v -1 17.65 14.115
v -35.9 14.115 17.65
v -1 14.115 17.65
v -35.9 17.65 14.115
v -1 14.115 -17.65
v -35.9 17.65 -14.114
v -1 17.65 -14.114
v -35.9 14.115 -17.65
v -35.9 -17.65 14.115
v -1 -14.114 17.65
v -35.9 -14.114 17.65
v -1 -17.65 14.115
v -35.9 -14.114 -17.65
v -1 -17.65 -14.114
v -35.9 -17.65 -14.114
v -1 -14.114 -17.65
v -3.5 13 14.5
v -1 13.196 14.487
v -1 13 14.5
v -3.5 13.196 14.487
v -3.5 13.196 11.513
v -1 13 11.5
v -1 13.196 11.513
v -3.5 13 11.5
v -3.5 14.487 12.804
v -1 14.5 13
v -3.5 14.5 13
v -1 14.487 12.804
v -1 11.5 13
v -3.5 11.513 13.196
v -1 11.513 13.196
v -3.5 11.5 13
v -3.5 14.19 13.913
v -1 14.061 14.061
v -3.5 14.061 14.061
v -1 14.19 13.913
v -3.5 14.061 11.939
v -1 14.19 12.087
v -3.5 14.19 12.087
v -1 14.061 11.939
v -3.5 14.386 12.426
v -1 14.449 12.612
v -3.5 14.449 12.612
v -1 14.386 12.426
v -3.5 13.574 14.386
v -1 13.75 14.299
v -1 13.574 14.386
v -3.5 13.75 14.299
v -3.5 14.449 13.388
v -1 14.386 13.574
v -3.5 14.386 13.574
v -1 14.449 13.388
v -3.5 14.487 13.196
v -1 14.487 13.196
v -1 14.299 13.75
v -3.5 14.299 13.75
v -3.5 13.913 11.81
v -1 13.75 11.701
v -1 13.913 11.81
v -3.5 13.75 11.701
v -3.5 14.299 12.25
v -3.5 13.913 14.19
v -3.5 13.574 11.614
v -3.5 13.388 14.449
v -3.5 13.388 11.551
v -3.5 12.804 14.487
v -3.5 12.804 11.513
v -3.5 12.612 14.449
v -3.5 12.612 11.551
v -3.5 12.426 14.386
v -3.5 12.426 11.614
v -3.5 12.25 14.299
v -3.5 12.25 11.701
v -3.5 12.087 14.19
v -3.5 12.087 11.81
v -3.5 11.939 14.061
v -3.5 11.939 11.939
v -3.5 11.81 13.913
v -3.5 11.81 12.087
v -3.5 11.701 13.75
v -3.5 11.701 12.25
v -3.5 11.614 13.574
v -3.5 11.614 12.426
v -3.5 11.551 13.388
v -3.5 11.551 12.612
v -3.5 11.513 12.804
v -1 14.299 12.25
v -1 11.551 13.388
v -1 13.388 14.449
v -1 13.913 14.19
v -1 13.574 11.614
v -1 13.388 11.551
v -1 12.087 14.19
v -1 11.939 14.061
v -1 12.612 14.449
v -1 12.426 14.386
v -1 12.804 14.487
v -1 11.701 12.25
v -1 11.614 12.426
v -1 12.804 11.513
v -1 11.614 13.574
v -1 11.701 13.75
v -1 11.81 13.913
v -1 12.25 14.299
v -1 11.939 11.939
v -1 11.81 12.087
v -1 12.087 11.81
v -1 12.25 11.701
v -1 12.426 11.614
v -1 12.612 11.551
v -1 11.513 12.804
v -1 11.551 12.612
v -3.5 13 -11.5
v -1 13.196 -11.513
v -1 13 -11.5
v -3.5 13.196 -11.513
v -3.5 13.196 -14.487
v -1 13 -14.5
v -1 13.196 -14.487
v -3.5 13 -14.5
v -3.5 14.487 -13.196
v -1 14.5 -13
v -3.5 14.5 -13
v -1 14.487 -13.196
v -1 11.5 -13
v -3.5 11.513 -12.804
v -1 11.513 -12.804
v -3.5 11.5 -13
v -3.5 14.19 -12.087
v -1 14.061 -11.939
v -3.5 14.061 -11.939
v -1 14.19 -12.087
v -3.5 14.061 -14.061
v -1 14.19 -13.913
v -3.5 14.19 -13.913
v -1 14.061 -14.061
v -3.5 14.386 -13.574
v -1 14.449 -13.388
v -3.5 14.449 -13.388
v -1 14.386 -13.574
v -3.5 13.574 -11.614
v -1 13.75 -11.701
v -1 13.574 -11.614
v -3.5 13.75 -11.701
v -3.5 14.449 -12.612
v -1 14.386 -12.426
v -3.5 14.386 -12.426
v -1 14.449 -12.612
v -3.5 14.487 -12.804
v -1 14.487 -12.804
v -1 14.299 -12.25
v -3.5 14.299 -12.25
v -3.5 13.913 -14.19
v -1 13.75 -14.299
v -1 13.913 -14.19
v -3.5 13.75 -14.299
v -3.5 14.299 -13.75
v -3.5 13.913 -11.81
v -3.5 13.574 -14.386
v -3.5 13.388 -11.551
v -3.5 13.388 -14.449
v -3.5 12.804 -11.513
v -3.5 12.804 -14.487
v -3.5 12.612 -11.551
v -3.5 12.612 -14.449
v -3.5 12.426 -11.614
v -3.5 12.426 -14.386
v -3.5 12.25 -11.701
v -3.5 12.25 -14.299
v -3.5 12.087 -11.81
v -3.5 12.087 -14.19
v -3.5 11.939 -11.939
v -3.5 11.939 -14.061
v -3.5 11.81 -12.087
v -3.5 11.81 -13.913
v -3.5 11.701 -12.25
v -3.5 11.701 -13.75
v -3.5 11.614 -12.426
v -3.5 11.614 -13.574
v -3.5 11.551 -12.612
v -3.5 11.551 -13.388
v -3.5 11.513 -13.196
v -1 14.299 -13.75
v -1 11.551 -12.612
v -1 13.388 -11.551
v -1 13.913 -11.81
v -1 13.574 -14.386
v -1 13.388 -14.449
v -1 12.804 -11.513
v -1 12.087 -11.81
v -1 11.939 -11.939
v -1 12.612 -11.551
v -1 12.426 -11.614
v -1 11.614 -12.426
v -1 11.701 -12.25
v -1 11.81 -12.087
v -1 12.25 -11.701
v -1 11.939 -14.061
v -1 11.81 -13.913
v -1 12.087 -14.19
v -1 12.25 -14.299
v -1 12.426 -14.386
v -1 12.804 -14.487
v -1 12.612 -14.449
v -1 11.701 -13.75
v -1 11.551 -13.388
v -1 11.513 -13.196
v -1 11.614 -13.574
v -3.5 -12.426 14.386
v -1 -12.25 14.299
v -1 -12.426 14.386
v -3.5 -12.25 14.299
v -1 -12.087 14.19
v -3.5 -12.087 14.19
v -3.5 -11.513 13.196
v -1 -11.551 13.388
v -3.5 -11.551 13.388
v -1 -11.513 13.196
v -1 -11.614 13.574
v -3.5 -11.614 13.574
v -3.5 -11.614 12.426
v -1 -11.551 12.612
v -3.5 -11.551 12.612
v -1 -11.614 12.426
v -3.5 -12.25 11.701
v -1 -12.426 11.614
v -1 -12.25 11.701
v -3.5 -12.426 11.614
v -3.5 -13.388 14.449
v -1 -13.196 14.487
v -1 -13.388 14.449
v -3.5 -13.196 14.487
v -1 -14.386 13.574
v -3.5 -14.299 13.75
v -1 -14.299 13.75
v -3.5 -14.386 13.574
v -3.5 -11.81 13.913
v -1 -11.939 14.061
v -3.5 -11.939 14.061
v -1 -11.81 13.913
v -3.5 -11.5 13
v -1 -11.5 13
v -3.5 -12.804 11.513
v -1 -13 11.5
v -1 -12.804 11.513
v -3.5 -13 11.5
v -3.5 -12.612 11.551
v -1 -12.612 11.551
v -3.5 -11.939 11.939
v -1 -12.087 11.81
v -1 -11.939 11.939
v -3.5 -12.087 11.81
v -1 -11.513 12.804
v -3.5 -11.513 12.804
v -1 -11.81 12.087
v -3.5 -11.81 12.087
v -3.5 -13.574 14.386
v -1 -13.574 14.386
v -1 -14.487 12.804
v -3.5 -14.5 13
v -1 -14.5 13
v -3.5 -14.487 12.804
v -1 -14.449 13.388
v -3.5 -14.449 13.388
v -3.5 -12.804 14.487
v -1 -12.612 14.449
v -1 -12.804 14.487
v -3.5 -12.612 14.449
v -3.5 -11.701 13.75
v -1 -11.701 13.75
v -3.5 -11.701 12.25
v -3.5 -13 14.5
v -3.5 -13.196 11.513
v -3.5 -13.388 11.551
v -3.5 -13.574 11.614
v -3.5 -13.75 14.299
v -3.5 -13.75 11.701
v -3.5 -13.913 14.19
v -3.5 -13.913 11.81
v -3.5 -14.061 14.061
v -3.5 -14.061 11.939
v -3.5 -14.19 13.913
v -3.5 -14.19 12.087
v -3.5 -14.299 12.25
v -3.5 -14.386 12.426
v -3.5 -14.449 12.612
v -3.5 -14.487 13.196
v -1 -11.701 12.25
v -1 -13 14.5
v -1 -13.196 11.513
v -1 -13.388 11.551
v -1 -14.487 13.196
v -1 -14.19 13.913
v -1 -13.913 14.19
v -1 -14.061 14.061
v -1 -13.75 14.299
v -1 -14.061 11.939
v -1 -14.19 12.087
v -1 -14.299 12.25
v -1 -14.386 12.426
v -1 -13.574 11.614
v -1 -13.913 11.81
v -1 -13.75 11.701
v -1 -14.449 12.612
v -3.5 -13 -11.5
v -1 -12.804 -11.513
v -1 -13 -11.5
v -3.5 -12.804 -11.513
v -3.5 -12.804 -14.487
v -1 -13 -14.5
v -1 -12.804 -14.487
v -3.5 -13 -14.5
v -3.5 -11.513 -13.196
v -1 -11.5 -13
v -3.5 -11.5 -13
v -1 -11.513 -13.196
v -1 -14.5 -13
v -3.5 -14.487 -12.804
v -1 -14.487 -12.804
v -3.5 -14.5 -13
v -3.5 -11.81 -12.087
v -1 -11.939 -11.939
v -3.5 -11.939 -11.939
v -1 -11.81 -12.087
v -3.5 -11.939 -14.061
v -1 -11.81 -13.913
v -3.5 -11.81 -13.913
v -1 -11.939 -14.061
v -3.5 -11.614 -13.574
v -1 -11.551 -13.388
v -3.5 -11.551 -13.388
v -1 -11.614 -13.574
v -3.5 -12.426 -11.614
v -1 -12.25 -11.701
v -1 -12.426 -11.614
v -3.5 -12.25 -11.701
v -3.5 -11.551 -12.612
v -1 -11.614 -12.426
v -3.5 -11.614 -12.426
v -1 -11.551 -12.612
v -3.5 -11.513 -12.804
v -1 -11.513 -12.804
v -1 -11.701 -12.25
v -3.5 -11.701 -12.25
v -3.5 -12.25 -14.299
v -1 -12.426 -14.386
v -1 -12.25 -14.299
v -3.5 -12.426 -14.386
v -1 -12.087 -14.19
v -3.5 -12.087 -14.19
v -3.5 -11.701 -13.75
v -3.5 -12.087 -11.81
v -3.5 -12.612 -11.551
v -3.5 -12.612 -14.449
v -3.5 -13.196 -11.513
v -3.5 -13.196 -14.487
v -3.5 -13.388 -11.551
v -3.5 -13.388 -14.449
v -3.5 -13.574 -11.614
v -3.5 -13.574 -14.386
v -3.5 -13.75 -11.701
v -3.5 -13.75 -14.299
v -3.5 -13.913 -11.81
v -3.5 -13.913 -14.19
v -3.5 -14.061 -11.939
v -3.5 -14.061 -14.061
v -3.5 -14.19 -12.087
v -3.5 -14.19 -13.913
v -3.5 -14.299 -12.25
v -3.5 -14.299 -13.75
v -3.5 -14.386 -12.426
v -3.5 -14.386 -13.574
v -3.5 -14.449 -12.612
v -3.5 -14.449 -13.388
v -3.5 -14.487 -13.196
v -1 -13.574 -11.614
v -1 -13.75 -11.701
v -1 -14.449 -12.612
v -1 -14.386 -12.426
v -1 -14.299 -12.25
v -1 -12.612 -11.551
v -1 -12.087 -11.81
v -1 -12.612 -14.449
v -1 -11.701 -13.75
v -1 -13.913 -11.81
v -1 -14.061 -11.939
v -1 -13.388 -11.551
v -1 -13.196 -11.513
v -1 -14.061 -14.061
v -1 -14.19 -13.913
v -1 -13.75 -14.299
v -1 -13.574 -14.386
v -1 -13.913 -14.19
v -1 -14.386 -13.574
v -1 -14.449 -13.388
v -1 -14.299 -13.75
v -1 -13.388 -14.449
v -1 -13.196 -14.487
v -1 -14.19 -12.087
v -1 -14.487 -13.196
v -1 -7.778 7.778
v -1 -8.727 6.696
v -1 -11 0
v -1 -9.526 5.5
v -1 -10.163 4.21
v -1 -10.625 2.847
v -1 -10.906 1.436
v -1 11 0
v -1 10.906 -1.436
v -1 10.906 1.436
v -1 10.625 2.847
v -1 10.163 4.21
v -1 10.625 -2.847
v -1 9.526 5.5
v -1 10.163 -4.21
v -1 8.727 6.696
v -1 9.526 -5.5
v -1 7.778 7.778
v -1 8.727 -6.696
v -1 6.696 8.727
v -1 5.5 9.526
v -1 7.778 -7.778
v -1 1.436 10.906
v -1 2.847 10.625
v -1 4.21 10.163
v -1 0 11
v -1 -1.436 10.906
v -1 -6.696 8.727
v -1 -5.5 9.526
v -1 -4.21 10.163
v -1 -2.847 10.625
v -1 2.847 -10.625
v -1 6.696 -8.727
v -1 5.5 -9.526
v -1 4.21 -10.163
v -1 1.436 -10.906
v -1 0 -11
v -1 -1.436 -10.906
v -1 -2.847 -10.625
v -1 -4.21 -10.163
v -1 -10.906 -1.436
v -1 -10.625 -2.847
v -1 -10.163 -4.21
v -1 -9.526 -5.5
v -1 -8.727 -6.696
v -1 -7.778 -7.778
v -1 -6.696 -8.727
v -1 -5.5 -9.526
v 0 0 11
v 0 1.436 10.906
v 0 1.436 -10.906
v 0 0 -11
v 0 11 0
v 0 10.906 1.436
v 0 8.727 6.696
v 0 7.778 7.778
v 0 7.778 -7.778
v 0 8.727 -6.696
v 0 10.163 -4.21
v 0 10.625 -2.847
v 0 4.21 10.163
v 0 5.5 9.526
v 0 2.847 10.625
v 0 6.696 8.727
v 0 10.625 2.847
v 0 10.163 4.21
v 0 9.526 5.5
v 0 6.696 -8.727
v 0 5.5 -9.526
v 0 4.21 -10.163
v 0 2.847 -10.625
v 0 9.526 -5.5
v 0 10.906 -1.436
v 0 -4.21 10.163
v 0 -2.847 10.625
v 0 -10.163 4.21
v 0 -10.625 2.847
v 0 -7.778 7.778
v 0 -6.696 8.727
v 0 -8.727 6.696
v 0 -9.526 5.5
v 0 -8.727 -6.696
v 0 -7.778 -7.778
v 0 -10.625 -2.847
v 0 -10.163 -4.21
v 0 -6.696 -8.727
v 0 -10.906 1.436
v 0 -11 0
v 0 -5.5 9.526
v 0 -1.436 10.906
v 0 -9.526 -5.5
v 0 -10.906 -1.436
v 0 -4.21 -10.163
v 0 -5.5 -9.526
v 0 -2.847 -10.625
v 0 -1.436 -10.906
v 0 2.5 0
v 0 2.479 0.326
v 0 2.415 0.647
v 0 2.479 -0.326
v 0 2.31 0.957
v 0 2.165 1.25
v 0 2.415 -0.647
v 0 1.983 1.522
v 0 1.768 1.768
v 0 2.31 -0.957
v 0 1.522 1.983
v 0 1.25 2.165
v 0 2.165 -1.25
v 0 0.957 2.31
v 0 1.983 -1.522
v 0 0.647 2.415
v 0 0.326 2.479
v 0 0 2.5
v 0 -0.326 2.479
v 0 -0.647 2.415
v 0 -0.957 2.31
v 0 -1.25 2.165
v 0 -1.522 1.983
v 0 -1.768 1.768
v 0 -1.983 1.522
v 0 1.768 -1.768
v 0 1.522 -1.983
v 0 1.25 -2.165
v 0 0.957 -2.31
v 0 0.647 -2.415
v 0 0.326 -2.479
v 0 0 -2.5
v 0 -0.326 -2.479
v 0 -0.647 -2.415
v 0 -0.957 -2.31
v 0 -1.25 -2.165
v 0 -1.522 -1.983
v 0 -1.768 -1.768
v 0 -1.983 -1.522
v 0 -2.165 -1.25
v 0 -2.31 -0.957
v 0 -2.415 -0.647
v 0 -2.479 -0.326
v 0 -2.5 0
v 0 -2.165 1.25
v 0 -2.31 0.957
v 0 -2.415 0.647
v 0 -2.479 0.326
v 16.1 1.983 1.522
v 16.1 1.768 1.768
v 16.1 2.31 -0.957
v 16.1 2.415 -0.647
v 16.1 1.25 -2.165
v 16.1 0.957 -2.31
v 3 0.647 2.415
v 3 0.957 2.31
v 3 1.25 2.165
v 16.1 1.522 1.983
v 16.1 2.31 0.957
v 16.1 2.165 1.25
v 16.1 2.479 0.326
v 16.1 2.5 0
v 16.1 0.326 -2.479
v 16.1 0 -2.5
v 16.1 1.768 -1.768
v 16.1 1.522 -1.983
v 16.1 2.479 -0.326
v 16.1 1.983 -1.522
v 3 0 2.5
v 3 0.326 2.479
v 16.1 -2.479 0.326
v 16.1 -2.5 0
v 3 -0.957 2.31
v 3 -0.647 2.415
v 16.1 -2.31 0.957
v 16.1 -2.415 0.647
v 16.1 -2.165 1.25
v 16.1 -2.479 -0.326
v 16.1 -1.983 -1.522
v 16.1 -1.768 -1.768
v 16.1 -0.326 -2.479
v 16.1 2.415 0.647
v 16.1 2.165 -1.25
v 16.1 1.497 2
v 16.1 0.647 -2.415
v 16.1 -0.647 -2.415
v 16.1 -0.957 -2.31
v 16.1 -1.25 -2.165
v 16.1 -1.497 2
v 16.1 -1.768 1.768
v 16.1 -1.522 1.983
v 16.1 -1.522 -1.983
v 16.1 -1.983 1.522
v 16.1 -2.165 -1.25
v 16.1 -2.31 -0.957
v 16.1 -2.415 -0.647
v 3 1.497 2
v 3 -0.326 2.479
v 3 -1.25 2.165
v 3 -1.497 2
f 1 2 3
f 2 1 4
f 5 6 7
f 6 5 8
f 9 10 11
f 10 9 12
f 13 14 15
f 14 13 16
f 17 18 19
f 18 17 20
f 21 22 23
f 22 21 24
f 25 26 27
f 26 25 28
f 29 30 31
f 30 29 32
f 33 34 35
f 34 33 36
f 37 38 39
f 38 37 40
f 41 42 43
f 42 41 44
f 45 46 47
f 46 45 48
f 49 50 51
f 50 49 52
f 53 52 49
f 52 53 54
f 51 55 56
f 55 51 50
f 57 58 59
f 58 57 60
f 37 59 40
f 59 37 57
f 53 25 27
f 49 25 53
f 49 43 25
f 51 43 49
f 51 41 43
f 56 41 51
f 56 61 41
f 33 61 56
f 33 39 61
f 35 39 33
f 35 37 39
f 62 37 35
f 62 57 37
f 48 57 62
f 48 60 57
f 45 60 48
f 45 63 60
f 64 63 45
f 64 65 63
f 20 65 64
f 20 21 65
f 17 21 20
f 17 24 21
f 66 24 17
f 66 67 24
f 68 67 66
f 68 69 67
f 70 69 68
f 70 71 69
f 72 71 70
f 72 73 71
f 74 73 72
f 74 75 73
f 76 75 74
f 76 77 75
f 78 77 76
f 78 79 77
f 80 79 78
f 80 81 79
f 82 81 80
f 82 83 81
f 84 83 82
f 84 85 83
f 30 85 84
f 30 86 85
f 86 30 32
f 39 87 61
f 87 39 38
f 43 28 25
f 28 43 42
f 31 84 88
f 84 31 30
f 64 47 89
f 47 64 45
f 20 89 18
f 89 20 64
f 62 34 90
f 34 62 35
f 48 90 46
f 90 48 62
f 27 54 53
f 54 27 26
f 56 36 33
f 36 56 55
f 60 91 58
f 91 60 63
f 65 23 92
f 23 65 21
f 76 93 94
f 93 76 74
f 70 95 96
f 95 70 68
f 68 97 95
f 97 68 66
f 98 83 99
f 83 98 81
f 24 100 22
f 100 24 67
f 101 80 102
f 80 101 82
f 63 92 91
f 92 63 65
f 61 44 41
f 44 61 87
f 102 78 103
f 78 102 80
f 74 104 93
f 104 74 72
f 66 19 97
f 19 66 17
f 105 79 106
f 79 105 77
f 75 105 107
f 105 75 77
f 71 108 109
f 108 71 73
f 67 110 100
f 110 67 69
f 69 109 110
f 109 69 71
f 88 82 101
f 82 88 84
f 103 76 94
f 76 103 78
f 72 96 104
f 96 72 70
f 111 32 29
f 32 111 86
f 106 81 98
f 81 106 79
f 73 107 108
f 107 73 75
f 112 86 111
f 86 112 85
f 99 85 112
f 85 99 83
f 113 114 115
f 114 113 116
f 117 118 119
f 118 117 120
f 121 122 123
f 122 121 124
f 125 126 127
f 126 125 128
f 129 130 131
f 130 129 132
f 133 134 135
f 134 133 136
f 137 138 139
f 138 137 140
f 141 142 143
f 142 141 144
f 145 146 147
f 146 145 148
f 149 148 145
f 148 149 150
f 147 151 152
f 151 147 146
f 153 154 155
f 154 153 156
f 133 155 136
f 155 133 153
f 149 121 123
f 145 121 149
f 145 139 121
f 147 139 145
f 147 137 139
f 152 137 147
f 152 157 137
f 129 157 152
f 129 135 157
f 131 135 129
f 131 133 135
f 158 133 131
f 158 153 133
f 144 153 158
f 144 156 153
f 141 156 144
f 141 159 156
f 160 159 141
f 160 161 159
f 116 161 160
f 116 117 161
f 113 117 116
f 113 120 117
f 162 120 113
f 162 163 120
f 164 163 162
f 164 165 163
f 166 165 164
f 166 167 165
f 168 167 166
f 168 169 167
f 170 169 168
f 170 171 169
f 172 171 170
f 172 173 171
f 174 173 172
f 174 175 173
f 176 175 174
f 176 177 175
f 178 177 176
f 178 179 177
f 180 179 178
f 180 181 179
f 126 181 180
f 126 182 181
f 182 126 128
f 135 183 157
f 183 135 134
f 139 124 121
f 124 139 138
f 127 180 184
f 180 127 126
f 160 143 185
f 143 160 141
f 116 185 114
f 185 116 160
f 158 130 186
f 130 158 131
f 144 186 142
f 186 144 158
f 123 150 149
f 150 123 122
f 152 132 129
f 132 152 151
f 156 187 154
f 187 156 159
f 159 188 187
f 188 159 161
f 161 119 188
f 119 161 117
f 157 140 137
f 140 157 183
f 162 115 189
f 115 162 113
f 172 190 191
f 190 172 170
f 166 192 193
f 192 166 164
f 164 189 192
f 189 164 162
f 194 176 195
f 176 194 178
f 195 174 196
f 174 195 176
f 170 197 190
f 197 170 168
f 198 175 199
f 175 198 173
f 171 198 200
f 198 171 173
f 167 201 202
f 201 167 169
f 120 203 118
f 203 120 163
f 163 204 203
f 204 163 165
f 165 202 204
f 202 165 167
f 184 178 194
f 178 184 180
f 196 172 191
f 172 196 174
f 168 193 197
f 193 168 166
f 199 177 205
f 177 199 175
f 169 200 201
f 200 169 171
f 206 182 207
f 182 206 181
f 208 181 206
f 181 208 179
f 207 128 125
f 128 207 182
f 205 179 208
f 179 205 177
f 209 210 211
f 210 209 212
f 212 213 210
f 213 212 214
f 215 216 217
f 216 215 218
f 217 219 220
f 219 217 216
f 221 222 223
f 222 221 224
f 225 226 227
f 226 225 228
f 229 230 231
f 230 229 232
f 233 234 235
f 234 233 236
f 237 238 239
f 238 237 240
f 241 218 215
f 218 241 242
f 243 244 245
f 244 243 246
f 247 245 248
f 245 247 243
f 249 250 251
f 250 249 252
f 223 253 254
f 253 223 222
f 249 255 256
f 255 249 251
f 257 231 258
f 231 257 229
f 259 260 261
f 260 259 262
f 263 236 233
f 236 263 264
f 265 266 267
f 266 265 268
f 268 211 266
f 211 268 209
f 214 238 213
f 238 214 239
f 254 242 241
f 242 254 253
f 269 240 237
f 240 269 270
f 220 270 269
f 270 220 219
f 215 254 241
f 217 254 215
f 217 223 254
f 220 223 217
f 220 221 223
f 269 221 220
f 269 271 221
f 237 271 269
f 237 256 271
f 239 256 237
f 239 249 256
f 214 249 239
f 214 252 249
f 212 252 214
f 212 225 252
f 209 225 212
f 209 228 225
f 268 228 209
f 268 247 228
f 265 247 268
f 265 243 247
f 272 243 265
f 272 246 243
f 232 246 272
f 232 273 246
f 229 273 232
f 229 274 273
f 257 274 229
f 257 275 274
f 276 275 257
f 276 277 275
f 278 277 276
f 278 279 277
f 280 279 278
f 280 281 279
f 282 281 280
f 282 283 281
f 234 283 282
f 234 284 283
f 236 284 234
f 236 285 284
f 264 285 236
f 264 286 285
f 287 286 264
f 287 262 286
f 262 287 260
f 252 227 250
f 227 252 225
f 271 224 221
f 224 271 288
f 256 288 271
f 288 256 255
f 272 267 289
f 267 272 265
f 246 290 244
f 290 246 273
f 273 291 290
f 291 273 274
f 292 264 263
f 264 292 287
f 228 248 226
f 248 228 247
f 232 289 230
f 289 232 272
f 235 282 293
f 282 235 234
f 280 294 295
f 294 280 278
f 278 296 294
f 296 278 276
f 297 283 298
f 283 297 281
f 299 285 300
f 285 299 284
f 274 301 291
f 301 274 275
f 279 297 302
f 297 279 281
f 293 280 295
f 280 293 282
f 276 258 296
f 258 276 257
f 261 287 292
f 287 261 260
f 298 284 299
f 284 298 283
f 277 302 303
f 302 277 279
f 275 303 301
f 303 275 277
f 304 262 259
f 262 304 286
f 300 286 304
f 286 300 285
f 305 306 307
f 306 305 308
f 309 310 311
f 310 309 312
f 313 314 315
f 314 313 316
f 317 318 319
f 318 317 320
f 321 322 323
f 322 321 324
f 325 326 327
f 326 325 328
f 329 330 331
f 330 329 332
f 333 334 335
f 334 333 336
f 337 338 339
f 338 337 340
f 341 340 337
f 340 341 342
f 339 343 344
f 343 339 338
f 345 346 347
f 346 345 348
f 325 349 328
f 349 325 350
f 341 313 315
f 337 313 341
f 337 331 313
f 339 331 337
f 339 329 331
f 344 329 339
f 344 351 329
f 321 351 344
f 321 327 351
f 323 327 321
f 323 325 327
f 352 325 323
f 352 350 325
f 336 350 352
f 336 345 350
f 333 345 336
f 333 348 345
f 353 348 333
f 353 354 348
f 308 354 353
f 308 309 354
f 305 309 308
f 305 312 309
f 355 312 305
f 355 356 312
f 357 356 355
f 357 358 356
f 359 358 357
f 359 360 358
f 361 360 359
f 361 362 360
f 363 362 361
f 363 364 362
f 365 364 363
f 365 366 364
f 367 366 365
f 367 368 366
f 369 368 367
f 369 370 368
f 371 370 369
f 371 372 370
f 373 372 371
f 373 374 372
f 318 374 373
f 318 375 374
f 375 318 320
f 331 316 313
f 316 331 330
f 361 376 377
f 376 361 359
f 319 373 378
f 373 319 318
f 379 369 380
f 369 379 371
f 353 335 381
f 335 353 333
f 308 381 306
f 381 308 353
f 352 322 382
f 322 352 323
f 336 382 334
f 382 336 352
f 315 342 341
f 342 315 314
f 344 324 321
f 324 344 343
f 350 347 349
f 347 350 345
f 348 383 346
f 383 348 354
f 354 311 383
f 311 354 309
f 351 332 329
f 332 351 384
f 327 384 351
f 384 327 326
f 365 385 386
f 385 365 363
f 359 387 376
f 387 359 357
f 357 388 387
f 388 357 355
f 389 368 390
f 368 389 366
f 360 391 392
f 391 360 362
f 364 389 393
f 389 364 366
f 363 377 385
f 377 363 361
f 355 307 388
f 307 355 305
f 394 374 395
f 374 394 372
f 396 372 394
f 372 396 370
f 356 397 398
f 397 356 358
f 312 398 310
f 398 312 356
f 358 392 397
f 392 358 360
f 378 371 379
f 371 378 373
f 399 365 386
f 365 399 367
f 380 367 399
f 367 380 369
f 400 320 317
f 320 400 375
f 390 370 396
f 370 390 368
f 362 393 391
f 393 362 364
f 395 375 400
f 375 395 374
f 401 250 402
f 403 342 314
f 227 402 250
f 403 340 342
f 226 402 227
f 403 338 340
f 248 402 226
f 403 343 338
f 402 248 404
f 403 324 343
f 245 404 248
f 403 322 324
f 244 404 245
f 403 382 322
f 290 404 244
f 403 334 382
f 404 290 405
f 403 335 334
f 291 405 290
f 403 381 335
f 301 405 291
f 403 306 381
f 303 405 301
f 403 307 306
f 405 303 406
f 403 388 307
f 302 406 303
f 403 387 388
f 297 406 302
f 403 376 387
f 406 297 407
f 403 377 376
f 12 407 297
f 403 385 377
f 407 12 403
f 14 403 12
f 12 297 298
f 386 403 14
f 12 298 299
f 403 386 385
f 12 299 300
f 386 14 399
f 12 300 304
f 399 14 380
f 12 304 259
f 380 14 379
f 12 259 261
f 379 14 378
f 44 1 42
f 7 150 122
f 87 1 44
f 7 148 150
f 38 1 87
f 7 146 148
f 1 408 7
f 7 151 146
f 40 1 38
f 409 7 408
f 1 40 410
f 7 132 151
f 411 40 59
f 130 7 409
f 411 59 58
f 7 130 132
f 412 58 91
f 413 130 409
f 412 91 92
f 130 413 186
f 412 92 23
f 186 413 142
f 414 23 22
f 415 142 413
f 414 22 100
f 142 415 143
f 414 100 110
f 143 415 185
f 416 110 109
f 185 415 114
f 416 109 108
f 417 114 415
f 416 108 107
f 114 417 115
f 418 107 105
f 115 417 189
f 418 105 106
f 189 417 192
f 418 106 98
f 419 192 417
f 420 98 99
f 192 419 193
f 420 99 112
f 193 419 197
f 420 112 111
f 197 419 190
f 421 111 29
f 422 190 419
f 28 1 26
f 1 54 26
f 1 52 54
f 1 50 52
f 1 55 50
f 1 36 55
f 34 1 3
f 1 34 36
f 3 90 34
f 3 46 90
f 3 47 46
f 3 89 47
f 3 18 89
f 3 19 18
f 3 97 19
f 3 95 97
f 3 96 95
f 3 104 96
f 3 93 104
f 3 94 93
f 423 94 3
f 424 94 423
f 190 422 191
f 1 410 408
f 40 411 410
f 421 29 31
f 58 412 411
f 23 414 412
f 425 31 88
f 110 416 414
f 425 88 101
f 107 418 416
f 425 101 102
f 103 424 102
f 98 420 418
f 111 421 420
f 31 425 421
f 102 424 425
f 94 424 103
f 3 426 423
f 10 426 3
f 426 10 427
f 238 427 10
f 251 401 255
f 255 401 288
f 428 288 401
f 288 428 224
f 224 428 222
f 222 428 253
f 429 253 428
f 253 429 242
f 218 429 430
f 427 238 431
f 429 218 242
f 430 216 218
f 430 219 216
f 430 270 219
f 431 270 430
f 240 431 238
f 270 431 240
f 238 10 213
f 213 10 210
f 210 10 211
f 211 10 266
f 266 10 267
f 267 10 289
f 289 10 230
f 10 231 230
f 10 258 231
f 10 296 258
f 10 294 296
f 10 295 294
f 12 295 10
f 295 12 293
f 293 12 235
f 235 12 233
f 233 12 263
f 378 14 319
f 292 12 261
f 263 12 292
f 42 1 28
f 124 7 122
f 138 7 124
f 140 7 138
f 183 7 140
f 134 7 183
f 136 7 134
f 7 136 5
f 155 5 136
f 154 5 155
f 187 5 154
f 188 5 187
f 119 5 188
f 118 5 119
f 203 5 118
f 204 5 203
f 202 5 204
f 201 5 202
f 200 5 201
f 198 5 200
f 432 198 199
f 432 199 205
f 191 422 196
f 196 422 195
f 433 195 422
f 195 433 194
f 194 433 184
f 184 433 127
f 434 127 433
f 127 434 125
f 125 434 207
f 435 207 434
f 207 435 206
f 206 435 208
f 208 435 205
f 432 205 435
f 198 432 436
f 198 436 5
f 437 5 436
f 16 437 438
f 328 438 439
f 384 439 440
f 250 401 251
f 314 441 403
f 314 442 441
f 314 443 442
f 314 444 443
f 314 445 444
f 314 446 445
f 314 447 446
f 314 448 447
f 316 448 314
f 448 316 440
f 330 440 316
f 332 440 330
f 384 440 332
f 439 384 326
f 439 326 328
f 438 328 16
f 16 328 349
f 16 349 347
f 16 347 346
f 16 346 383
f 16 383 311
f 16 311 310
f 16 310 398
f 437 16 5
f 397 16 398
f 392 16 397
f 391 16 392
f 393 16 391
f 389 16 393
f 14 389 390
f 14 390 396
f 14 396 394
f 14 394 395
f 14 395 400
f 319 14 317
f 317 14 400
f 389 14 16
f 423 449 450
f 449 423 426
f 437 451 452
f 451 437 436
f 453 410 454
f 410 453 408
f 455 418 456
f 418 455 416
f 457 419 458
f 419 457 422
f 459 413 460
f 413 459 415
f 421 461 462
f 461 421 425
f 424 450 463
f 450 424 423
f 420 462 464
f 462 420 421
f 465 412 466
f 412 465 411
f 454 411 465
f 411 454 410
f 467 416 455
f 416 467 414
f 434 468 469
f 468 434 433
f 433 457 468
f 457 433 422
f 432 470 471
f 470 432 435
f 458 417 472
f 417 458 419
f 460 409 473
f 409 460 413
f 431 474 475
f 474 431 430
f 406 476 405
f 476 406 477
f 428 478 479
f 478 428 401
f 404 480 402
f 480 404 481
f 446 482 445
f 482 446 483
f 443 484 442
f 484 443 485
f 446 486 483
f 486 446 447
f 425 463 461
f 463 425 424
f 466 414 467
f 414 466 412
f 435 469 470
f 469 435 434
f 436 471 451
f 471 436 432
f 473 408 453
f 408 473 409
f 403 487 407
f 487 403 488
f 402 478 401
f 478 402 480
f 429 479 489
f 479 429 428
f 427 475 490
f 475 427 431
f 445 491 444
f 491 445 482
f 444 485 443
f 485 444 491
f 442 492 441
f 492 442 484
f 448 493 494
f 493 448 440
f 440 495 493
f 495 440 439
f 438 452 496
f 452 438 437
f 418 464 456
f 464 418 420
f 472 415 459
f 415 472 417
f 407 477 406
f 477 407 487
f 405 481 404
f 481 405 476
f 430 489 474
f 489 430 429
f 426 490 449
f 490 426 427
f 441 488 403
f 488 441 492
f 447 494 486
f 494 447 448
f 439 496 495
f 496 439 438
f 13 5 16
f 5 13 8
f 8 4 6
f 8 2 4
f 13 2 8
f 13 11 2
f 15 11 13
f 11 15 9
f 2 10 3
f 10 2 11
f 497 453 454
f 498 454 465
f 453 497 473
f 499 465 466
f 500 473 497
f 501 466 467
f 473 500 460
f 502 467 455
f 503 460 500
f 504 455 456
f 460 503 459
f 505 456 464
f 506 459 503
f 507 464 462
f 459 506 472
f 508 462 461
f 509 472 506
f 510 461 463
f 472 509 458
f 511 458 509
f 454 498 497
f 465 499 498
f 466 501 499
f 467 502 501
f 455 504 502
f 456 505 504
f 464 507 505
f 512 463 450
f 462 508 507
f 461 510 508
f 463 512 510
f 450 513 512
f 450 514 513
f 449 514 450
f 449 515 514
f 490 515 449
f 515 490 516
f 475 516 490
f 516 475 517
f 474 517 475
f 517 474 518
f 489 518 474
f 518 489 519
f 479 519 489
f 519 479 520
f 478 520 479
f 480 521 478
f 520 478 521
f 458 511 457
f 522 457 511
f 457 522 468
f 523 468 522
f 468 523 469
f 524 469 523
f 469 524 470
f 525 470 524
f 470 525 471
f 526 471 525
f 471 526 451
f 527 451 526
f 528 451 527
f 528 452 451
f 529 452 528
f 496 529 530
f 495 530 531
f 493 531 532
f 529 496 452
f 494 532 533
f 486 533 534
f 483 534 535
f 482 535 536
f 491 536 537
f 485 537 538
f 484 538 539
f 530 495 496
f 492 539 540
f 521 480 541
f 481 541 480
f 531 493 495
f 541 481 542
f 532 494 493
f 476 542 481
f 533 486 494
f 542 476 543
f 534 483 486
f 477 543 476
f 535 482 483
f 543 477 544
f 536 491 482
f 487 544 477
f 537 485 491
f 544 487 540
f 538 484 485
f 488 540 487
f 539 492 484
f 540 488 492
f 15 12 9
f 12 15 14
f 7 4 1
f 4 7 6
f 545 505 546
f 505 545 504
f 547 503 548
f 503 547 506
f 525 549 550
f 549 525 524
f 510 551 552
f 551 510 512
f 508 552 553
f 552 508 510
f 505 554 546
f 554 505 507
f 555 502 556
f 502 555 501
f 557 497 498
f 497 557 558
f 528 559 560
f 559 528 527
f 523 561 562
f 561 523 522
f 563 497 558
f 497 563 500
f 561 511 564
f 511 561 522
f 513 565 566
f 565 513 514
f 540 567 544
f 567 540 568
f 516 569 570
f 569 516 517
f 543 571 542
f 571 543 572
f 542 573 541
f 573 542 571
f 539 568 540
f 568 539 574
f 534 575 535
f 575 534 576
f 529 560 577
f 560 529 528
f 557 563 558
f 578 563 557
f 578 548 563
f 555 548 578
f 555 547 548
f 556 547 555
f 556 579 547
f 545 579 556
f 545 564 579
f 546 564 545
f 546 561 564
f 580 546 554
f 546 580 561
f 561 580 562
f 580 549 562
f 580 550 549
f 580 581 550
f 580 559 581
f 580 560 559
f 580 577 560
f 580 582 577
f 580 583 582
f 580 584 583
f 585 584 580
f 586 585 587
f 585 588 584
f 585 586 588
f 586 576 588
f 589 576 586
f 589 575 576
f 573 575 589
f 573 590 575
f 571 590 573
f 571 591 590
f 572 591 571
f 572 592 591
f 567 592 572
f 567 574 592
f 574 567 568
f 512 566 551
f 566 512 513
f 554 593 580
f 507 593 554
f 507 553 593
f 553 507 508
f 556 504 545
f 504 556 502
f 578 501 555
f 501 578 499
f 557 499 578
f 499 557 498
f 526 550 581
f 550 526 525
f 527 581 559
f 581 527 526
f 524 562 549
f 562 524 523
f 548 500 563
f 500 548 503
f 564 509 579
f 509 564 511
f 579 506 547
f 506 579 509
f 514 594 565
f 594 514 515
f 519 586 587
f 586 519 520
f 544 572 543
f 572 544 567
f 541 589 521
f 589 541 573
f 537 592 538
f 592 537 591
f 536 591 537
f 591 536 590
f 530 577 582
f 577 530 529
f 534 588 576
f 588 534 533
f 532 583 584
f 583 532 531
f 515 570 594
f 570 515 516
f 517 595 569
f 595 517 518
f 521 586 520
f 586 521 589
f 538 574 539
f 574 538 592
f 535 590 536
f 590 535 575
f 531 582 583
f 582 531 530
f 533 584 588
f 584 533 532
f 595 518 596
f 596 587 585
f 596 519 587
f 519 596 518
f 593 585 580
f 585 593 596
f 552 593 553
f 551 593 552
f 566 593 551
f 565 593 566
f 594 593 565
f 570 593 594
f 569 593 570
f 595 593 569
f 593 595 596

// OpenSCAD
/**********************************************************************************************************************
 **
 ** lib/MCAD/stepper_nema14_ling.scad
 **
 ** This file renders a NEMA stepper motor of the dimensions specified by the file name.
 **
 **********************************************************************************************************************/

include <MCAD/stepper.scad>

$fn = 48;
rotate([0, -90, 0])
	motor(Nema14, NemaLong, dualAxis = false);
